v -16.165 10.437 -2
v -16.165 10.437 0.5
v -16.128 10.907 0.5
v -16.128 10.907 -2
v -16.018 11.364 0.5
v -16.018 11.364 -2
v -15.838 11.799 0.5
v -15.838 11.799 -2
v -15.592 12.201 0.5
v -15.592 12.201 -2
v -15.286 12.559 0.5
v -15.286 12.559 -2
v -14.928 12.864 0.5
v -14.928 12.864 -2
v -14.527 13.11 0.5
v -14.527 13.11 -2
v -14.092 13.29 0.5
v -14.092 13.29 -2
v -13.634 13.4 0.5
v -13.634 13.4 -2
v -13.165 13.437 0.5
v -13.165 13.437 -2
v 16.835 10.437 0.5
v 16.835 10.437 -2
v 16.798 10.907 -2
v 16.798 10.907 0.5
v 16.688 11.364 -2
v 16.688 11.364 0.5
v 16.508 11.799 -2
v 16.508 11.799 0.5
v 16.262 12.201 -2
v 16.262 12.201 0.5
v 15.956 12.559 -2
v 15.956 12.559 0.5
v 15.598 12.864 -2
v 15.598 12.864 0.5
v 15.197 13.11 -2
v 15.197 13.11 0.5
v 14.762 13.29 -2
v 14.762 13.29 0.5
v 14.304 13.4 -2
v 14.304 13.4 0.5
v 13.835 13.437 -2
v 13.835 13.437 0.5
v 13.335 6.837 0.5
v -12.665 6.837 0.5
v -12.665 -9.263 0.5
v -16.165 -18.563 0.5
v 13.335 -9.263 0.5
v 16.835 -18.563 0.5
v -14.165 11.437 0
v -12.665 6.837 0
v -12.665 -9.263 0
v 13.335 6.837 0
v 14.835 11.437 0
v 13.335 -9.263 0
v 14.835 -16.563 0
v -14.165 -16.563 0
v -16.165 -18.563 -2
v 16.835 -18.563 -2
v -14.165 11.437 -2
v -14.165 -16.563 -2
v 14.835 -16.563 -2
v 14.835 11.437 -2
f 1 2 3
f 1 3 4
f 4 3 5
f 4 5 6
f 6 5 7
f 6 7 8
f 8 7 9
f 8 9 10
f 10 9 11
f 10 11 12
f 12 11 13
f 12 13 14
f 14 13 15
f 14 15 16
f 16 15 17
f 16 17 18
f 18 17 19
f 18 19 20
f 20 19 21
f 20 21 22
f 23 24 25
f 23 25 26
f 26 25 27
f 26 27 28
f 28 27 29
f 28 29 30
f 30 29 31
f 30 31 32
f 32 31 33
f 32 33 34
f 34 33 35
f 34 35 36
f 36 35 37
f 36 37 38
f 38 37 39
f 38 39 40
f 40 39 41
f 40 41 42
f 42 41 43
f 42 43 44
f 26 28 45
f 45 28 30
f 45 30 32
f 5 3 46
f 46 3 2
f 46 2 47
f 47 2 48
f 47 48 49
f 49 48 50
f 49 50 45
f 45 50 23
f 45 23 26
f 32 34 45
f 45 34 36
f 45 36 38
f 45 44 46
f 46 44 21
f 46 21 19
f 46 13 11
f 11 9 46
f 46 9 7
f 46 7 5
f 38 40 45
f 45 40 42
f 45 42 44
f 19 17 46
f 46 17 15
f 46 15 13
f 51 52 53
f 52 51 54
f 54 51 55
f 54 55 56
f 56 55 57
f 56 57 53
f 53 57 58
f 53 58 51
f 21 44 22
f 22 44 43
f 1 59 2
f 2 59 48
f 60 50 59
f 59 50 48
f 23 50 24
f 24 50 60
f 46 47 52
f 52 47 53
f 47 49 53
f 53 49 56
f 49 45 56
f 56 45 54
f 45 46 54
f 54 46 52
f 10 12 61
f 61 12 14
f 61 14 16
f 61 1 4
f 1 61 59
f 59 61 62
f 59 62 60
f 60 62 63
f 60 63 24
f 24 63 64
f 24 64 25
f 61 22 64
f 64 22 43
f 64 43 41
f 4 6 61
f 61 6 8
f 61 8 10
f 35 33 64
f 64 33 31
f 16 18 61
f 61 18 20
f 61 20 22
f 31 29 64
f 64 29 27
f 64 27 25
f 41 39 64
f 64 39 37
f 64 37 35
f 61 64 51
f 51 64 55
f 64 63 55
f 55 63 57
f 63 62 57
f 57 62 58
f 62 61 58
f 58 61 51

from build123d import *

# Parameters (mm, degrees)
SKETCH_1_W      = 33
SKETCH_1_H      = 32
SKETCH_1_W_2    = 26
SKETCH_1_H_2    = 16.1
EXTRUDE_1_DEPTH = 0.5
SKETCH_2_W      = 33
SKETCH_2_H      = 32
SKETCH_2_W_2    = 29
SKETCH_2_H_2    = 28
EXTRUDE_2_DEPTH = 2
FILLET_1_R      = 3
FILLET_2_R      = 3


with BuildPart() as part:
    # 草图1 → 凸台-拉伸1 (new body)
    with BuildSketch(Plane.XY):
        with Locations((0.334983498, -2.562706271)):
            Rectangle(SKETCH_1_W, SKETCH_1_H)
        with Locations((0.334983498, -1.212706271)):
            Rectangle(SKETCH_1_W_2, SKETCH_1_H_2, mode=Mode.SUBTRACT)
    extrude(amount=EXTRUDE_1_DEPTH)

    # 草图2 → 凸台-拉伸2 (add)
    with BuildSketch(Plane(origin=(0, 0, 0), x_dir=(-1, 0, 0), z_dir=(0, 0, -1))):
        with Locations((-0.334983498, -2.562706271)):
            Rectangle(SKETCH_2_W, SKETCH_2_H)
        with Locations((-0.334983498, -2.562706271)):
            Rectangle(SKETCH_2_W_2, SKETCH_2_H_2, mode=Mode.SUBTRACT)
    extrude(amount=EXTRUDE_2_DEPTH)

    # 圆角1
    fillet_1_edges = [part.edges().sort_by_distance(p)[0] for p in [
        (16.834983498, 13.437293729, -0.75),
    ]]
    fillet(fillet_1_edges, radius=FILLET_1_R)

    # 圆角2
    fillet_2_edges = [part.edges().sort_by_distance(p)[0] for p in [
        (-16.165016502, 13.437293729, -0.75),
    ]]
    fillet(fillet_2_edges, radius=FILLET_2_R)


solid = part.part
